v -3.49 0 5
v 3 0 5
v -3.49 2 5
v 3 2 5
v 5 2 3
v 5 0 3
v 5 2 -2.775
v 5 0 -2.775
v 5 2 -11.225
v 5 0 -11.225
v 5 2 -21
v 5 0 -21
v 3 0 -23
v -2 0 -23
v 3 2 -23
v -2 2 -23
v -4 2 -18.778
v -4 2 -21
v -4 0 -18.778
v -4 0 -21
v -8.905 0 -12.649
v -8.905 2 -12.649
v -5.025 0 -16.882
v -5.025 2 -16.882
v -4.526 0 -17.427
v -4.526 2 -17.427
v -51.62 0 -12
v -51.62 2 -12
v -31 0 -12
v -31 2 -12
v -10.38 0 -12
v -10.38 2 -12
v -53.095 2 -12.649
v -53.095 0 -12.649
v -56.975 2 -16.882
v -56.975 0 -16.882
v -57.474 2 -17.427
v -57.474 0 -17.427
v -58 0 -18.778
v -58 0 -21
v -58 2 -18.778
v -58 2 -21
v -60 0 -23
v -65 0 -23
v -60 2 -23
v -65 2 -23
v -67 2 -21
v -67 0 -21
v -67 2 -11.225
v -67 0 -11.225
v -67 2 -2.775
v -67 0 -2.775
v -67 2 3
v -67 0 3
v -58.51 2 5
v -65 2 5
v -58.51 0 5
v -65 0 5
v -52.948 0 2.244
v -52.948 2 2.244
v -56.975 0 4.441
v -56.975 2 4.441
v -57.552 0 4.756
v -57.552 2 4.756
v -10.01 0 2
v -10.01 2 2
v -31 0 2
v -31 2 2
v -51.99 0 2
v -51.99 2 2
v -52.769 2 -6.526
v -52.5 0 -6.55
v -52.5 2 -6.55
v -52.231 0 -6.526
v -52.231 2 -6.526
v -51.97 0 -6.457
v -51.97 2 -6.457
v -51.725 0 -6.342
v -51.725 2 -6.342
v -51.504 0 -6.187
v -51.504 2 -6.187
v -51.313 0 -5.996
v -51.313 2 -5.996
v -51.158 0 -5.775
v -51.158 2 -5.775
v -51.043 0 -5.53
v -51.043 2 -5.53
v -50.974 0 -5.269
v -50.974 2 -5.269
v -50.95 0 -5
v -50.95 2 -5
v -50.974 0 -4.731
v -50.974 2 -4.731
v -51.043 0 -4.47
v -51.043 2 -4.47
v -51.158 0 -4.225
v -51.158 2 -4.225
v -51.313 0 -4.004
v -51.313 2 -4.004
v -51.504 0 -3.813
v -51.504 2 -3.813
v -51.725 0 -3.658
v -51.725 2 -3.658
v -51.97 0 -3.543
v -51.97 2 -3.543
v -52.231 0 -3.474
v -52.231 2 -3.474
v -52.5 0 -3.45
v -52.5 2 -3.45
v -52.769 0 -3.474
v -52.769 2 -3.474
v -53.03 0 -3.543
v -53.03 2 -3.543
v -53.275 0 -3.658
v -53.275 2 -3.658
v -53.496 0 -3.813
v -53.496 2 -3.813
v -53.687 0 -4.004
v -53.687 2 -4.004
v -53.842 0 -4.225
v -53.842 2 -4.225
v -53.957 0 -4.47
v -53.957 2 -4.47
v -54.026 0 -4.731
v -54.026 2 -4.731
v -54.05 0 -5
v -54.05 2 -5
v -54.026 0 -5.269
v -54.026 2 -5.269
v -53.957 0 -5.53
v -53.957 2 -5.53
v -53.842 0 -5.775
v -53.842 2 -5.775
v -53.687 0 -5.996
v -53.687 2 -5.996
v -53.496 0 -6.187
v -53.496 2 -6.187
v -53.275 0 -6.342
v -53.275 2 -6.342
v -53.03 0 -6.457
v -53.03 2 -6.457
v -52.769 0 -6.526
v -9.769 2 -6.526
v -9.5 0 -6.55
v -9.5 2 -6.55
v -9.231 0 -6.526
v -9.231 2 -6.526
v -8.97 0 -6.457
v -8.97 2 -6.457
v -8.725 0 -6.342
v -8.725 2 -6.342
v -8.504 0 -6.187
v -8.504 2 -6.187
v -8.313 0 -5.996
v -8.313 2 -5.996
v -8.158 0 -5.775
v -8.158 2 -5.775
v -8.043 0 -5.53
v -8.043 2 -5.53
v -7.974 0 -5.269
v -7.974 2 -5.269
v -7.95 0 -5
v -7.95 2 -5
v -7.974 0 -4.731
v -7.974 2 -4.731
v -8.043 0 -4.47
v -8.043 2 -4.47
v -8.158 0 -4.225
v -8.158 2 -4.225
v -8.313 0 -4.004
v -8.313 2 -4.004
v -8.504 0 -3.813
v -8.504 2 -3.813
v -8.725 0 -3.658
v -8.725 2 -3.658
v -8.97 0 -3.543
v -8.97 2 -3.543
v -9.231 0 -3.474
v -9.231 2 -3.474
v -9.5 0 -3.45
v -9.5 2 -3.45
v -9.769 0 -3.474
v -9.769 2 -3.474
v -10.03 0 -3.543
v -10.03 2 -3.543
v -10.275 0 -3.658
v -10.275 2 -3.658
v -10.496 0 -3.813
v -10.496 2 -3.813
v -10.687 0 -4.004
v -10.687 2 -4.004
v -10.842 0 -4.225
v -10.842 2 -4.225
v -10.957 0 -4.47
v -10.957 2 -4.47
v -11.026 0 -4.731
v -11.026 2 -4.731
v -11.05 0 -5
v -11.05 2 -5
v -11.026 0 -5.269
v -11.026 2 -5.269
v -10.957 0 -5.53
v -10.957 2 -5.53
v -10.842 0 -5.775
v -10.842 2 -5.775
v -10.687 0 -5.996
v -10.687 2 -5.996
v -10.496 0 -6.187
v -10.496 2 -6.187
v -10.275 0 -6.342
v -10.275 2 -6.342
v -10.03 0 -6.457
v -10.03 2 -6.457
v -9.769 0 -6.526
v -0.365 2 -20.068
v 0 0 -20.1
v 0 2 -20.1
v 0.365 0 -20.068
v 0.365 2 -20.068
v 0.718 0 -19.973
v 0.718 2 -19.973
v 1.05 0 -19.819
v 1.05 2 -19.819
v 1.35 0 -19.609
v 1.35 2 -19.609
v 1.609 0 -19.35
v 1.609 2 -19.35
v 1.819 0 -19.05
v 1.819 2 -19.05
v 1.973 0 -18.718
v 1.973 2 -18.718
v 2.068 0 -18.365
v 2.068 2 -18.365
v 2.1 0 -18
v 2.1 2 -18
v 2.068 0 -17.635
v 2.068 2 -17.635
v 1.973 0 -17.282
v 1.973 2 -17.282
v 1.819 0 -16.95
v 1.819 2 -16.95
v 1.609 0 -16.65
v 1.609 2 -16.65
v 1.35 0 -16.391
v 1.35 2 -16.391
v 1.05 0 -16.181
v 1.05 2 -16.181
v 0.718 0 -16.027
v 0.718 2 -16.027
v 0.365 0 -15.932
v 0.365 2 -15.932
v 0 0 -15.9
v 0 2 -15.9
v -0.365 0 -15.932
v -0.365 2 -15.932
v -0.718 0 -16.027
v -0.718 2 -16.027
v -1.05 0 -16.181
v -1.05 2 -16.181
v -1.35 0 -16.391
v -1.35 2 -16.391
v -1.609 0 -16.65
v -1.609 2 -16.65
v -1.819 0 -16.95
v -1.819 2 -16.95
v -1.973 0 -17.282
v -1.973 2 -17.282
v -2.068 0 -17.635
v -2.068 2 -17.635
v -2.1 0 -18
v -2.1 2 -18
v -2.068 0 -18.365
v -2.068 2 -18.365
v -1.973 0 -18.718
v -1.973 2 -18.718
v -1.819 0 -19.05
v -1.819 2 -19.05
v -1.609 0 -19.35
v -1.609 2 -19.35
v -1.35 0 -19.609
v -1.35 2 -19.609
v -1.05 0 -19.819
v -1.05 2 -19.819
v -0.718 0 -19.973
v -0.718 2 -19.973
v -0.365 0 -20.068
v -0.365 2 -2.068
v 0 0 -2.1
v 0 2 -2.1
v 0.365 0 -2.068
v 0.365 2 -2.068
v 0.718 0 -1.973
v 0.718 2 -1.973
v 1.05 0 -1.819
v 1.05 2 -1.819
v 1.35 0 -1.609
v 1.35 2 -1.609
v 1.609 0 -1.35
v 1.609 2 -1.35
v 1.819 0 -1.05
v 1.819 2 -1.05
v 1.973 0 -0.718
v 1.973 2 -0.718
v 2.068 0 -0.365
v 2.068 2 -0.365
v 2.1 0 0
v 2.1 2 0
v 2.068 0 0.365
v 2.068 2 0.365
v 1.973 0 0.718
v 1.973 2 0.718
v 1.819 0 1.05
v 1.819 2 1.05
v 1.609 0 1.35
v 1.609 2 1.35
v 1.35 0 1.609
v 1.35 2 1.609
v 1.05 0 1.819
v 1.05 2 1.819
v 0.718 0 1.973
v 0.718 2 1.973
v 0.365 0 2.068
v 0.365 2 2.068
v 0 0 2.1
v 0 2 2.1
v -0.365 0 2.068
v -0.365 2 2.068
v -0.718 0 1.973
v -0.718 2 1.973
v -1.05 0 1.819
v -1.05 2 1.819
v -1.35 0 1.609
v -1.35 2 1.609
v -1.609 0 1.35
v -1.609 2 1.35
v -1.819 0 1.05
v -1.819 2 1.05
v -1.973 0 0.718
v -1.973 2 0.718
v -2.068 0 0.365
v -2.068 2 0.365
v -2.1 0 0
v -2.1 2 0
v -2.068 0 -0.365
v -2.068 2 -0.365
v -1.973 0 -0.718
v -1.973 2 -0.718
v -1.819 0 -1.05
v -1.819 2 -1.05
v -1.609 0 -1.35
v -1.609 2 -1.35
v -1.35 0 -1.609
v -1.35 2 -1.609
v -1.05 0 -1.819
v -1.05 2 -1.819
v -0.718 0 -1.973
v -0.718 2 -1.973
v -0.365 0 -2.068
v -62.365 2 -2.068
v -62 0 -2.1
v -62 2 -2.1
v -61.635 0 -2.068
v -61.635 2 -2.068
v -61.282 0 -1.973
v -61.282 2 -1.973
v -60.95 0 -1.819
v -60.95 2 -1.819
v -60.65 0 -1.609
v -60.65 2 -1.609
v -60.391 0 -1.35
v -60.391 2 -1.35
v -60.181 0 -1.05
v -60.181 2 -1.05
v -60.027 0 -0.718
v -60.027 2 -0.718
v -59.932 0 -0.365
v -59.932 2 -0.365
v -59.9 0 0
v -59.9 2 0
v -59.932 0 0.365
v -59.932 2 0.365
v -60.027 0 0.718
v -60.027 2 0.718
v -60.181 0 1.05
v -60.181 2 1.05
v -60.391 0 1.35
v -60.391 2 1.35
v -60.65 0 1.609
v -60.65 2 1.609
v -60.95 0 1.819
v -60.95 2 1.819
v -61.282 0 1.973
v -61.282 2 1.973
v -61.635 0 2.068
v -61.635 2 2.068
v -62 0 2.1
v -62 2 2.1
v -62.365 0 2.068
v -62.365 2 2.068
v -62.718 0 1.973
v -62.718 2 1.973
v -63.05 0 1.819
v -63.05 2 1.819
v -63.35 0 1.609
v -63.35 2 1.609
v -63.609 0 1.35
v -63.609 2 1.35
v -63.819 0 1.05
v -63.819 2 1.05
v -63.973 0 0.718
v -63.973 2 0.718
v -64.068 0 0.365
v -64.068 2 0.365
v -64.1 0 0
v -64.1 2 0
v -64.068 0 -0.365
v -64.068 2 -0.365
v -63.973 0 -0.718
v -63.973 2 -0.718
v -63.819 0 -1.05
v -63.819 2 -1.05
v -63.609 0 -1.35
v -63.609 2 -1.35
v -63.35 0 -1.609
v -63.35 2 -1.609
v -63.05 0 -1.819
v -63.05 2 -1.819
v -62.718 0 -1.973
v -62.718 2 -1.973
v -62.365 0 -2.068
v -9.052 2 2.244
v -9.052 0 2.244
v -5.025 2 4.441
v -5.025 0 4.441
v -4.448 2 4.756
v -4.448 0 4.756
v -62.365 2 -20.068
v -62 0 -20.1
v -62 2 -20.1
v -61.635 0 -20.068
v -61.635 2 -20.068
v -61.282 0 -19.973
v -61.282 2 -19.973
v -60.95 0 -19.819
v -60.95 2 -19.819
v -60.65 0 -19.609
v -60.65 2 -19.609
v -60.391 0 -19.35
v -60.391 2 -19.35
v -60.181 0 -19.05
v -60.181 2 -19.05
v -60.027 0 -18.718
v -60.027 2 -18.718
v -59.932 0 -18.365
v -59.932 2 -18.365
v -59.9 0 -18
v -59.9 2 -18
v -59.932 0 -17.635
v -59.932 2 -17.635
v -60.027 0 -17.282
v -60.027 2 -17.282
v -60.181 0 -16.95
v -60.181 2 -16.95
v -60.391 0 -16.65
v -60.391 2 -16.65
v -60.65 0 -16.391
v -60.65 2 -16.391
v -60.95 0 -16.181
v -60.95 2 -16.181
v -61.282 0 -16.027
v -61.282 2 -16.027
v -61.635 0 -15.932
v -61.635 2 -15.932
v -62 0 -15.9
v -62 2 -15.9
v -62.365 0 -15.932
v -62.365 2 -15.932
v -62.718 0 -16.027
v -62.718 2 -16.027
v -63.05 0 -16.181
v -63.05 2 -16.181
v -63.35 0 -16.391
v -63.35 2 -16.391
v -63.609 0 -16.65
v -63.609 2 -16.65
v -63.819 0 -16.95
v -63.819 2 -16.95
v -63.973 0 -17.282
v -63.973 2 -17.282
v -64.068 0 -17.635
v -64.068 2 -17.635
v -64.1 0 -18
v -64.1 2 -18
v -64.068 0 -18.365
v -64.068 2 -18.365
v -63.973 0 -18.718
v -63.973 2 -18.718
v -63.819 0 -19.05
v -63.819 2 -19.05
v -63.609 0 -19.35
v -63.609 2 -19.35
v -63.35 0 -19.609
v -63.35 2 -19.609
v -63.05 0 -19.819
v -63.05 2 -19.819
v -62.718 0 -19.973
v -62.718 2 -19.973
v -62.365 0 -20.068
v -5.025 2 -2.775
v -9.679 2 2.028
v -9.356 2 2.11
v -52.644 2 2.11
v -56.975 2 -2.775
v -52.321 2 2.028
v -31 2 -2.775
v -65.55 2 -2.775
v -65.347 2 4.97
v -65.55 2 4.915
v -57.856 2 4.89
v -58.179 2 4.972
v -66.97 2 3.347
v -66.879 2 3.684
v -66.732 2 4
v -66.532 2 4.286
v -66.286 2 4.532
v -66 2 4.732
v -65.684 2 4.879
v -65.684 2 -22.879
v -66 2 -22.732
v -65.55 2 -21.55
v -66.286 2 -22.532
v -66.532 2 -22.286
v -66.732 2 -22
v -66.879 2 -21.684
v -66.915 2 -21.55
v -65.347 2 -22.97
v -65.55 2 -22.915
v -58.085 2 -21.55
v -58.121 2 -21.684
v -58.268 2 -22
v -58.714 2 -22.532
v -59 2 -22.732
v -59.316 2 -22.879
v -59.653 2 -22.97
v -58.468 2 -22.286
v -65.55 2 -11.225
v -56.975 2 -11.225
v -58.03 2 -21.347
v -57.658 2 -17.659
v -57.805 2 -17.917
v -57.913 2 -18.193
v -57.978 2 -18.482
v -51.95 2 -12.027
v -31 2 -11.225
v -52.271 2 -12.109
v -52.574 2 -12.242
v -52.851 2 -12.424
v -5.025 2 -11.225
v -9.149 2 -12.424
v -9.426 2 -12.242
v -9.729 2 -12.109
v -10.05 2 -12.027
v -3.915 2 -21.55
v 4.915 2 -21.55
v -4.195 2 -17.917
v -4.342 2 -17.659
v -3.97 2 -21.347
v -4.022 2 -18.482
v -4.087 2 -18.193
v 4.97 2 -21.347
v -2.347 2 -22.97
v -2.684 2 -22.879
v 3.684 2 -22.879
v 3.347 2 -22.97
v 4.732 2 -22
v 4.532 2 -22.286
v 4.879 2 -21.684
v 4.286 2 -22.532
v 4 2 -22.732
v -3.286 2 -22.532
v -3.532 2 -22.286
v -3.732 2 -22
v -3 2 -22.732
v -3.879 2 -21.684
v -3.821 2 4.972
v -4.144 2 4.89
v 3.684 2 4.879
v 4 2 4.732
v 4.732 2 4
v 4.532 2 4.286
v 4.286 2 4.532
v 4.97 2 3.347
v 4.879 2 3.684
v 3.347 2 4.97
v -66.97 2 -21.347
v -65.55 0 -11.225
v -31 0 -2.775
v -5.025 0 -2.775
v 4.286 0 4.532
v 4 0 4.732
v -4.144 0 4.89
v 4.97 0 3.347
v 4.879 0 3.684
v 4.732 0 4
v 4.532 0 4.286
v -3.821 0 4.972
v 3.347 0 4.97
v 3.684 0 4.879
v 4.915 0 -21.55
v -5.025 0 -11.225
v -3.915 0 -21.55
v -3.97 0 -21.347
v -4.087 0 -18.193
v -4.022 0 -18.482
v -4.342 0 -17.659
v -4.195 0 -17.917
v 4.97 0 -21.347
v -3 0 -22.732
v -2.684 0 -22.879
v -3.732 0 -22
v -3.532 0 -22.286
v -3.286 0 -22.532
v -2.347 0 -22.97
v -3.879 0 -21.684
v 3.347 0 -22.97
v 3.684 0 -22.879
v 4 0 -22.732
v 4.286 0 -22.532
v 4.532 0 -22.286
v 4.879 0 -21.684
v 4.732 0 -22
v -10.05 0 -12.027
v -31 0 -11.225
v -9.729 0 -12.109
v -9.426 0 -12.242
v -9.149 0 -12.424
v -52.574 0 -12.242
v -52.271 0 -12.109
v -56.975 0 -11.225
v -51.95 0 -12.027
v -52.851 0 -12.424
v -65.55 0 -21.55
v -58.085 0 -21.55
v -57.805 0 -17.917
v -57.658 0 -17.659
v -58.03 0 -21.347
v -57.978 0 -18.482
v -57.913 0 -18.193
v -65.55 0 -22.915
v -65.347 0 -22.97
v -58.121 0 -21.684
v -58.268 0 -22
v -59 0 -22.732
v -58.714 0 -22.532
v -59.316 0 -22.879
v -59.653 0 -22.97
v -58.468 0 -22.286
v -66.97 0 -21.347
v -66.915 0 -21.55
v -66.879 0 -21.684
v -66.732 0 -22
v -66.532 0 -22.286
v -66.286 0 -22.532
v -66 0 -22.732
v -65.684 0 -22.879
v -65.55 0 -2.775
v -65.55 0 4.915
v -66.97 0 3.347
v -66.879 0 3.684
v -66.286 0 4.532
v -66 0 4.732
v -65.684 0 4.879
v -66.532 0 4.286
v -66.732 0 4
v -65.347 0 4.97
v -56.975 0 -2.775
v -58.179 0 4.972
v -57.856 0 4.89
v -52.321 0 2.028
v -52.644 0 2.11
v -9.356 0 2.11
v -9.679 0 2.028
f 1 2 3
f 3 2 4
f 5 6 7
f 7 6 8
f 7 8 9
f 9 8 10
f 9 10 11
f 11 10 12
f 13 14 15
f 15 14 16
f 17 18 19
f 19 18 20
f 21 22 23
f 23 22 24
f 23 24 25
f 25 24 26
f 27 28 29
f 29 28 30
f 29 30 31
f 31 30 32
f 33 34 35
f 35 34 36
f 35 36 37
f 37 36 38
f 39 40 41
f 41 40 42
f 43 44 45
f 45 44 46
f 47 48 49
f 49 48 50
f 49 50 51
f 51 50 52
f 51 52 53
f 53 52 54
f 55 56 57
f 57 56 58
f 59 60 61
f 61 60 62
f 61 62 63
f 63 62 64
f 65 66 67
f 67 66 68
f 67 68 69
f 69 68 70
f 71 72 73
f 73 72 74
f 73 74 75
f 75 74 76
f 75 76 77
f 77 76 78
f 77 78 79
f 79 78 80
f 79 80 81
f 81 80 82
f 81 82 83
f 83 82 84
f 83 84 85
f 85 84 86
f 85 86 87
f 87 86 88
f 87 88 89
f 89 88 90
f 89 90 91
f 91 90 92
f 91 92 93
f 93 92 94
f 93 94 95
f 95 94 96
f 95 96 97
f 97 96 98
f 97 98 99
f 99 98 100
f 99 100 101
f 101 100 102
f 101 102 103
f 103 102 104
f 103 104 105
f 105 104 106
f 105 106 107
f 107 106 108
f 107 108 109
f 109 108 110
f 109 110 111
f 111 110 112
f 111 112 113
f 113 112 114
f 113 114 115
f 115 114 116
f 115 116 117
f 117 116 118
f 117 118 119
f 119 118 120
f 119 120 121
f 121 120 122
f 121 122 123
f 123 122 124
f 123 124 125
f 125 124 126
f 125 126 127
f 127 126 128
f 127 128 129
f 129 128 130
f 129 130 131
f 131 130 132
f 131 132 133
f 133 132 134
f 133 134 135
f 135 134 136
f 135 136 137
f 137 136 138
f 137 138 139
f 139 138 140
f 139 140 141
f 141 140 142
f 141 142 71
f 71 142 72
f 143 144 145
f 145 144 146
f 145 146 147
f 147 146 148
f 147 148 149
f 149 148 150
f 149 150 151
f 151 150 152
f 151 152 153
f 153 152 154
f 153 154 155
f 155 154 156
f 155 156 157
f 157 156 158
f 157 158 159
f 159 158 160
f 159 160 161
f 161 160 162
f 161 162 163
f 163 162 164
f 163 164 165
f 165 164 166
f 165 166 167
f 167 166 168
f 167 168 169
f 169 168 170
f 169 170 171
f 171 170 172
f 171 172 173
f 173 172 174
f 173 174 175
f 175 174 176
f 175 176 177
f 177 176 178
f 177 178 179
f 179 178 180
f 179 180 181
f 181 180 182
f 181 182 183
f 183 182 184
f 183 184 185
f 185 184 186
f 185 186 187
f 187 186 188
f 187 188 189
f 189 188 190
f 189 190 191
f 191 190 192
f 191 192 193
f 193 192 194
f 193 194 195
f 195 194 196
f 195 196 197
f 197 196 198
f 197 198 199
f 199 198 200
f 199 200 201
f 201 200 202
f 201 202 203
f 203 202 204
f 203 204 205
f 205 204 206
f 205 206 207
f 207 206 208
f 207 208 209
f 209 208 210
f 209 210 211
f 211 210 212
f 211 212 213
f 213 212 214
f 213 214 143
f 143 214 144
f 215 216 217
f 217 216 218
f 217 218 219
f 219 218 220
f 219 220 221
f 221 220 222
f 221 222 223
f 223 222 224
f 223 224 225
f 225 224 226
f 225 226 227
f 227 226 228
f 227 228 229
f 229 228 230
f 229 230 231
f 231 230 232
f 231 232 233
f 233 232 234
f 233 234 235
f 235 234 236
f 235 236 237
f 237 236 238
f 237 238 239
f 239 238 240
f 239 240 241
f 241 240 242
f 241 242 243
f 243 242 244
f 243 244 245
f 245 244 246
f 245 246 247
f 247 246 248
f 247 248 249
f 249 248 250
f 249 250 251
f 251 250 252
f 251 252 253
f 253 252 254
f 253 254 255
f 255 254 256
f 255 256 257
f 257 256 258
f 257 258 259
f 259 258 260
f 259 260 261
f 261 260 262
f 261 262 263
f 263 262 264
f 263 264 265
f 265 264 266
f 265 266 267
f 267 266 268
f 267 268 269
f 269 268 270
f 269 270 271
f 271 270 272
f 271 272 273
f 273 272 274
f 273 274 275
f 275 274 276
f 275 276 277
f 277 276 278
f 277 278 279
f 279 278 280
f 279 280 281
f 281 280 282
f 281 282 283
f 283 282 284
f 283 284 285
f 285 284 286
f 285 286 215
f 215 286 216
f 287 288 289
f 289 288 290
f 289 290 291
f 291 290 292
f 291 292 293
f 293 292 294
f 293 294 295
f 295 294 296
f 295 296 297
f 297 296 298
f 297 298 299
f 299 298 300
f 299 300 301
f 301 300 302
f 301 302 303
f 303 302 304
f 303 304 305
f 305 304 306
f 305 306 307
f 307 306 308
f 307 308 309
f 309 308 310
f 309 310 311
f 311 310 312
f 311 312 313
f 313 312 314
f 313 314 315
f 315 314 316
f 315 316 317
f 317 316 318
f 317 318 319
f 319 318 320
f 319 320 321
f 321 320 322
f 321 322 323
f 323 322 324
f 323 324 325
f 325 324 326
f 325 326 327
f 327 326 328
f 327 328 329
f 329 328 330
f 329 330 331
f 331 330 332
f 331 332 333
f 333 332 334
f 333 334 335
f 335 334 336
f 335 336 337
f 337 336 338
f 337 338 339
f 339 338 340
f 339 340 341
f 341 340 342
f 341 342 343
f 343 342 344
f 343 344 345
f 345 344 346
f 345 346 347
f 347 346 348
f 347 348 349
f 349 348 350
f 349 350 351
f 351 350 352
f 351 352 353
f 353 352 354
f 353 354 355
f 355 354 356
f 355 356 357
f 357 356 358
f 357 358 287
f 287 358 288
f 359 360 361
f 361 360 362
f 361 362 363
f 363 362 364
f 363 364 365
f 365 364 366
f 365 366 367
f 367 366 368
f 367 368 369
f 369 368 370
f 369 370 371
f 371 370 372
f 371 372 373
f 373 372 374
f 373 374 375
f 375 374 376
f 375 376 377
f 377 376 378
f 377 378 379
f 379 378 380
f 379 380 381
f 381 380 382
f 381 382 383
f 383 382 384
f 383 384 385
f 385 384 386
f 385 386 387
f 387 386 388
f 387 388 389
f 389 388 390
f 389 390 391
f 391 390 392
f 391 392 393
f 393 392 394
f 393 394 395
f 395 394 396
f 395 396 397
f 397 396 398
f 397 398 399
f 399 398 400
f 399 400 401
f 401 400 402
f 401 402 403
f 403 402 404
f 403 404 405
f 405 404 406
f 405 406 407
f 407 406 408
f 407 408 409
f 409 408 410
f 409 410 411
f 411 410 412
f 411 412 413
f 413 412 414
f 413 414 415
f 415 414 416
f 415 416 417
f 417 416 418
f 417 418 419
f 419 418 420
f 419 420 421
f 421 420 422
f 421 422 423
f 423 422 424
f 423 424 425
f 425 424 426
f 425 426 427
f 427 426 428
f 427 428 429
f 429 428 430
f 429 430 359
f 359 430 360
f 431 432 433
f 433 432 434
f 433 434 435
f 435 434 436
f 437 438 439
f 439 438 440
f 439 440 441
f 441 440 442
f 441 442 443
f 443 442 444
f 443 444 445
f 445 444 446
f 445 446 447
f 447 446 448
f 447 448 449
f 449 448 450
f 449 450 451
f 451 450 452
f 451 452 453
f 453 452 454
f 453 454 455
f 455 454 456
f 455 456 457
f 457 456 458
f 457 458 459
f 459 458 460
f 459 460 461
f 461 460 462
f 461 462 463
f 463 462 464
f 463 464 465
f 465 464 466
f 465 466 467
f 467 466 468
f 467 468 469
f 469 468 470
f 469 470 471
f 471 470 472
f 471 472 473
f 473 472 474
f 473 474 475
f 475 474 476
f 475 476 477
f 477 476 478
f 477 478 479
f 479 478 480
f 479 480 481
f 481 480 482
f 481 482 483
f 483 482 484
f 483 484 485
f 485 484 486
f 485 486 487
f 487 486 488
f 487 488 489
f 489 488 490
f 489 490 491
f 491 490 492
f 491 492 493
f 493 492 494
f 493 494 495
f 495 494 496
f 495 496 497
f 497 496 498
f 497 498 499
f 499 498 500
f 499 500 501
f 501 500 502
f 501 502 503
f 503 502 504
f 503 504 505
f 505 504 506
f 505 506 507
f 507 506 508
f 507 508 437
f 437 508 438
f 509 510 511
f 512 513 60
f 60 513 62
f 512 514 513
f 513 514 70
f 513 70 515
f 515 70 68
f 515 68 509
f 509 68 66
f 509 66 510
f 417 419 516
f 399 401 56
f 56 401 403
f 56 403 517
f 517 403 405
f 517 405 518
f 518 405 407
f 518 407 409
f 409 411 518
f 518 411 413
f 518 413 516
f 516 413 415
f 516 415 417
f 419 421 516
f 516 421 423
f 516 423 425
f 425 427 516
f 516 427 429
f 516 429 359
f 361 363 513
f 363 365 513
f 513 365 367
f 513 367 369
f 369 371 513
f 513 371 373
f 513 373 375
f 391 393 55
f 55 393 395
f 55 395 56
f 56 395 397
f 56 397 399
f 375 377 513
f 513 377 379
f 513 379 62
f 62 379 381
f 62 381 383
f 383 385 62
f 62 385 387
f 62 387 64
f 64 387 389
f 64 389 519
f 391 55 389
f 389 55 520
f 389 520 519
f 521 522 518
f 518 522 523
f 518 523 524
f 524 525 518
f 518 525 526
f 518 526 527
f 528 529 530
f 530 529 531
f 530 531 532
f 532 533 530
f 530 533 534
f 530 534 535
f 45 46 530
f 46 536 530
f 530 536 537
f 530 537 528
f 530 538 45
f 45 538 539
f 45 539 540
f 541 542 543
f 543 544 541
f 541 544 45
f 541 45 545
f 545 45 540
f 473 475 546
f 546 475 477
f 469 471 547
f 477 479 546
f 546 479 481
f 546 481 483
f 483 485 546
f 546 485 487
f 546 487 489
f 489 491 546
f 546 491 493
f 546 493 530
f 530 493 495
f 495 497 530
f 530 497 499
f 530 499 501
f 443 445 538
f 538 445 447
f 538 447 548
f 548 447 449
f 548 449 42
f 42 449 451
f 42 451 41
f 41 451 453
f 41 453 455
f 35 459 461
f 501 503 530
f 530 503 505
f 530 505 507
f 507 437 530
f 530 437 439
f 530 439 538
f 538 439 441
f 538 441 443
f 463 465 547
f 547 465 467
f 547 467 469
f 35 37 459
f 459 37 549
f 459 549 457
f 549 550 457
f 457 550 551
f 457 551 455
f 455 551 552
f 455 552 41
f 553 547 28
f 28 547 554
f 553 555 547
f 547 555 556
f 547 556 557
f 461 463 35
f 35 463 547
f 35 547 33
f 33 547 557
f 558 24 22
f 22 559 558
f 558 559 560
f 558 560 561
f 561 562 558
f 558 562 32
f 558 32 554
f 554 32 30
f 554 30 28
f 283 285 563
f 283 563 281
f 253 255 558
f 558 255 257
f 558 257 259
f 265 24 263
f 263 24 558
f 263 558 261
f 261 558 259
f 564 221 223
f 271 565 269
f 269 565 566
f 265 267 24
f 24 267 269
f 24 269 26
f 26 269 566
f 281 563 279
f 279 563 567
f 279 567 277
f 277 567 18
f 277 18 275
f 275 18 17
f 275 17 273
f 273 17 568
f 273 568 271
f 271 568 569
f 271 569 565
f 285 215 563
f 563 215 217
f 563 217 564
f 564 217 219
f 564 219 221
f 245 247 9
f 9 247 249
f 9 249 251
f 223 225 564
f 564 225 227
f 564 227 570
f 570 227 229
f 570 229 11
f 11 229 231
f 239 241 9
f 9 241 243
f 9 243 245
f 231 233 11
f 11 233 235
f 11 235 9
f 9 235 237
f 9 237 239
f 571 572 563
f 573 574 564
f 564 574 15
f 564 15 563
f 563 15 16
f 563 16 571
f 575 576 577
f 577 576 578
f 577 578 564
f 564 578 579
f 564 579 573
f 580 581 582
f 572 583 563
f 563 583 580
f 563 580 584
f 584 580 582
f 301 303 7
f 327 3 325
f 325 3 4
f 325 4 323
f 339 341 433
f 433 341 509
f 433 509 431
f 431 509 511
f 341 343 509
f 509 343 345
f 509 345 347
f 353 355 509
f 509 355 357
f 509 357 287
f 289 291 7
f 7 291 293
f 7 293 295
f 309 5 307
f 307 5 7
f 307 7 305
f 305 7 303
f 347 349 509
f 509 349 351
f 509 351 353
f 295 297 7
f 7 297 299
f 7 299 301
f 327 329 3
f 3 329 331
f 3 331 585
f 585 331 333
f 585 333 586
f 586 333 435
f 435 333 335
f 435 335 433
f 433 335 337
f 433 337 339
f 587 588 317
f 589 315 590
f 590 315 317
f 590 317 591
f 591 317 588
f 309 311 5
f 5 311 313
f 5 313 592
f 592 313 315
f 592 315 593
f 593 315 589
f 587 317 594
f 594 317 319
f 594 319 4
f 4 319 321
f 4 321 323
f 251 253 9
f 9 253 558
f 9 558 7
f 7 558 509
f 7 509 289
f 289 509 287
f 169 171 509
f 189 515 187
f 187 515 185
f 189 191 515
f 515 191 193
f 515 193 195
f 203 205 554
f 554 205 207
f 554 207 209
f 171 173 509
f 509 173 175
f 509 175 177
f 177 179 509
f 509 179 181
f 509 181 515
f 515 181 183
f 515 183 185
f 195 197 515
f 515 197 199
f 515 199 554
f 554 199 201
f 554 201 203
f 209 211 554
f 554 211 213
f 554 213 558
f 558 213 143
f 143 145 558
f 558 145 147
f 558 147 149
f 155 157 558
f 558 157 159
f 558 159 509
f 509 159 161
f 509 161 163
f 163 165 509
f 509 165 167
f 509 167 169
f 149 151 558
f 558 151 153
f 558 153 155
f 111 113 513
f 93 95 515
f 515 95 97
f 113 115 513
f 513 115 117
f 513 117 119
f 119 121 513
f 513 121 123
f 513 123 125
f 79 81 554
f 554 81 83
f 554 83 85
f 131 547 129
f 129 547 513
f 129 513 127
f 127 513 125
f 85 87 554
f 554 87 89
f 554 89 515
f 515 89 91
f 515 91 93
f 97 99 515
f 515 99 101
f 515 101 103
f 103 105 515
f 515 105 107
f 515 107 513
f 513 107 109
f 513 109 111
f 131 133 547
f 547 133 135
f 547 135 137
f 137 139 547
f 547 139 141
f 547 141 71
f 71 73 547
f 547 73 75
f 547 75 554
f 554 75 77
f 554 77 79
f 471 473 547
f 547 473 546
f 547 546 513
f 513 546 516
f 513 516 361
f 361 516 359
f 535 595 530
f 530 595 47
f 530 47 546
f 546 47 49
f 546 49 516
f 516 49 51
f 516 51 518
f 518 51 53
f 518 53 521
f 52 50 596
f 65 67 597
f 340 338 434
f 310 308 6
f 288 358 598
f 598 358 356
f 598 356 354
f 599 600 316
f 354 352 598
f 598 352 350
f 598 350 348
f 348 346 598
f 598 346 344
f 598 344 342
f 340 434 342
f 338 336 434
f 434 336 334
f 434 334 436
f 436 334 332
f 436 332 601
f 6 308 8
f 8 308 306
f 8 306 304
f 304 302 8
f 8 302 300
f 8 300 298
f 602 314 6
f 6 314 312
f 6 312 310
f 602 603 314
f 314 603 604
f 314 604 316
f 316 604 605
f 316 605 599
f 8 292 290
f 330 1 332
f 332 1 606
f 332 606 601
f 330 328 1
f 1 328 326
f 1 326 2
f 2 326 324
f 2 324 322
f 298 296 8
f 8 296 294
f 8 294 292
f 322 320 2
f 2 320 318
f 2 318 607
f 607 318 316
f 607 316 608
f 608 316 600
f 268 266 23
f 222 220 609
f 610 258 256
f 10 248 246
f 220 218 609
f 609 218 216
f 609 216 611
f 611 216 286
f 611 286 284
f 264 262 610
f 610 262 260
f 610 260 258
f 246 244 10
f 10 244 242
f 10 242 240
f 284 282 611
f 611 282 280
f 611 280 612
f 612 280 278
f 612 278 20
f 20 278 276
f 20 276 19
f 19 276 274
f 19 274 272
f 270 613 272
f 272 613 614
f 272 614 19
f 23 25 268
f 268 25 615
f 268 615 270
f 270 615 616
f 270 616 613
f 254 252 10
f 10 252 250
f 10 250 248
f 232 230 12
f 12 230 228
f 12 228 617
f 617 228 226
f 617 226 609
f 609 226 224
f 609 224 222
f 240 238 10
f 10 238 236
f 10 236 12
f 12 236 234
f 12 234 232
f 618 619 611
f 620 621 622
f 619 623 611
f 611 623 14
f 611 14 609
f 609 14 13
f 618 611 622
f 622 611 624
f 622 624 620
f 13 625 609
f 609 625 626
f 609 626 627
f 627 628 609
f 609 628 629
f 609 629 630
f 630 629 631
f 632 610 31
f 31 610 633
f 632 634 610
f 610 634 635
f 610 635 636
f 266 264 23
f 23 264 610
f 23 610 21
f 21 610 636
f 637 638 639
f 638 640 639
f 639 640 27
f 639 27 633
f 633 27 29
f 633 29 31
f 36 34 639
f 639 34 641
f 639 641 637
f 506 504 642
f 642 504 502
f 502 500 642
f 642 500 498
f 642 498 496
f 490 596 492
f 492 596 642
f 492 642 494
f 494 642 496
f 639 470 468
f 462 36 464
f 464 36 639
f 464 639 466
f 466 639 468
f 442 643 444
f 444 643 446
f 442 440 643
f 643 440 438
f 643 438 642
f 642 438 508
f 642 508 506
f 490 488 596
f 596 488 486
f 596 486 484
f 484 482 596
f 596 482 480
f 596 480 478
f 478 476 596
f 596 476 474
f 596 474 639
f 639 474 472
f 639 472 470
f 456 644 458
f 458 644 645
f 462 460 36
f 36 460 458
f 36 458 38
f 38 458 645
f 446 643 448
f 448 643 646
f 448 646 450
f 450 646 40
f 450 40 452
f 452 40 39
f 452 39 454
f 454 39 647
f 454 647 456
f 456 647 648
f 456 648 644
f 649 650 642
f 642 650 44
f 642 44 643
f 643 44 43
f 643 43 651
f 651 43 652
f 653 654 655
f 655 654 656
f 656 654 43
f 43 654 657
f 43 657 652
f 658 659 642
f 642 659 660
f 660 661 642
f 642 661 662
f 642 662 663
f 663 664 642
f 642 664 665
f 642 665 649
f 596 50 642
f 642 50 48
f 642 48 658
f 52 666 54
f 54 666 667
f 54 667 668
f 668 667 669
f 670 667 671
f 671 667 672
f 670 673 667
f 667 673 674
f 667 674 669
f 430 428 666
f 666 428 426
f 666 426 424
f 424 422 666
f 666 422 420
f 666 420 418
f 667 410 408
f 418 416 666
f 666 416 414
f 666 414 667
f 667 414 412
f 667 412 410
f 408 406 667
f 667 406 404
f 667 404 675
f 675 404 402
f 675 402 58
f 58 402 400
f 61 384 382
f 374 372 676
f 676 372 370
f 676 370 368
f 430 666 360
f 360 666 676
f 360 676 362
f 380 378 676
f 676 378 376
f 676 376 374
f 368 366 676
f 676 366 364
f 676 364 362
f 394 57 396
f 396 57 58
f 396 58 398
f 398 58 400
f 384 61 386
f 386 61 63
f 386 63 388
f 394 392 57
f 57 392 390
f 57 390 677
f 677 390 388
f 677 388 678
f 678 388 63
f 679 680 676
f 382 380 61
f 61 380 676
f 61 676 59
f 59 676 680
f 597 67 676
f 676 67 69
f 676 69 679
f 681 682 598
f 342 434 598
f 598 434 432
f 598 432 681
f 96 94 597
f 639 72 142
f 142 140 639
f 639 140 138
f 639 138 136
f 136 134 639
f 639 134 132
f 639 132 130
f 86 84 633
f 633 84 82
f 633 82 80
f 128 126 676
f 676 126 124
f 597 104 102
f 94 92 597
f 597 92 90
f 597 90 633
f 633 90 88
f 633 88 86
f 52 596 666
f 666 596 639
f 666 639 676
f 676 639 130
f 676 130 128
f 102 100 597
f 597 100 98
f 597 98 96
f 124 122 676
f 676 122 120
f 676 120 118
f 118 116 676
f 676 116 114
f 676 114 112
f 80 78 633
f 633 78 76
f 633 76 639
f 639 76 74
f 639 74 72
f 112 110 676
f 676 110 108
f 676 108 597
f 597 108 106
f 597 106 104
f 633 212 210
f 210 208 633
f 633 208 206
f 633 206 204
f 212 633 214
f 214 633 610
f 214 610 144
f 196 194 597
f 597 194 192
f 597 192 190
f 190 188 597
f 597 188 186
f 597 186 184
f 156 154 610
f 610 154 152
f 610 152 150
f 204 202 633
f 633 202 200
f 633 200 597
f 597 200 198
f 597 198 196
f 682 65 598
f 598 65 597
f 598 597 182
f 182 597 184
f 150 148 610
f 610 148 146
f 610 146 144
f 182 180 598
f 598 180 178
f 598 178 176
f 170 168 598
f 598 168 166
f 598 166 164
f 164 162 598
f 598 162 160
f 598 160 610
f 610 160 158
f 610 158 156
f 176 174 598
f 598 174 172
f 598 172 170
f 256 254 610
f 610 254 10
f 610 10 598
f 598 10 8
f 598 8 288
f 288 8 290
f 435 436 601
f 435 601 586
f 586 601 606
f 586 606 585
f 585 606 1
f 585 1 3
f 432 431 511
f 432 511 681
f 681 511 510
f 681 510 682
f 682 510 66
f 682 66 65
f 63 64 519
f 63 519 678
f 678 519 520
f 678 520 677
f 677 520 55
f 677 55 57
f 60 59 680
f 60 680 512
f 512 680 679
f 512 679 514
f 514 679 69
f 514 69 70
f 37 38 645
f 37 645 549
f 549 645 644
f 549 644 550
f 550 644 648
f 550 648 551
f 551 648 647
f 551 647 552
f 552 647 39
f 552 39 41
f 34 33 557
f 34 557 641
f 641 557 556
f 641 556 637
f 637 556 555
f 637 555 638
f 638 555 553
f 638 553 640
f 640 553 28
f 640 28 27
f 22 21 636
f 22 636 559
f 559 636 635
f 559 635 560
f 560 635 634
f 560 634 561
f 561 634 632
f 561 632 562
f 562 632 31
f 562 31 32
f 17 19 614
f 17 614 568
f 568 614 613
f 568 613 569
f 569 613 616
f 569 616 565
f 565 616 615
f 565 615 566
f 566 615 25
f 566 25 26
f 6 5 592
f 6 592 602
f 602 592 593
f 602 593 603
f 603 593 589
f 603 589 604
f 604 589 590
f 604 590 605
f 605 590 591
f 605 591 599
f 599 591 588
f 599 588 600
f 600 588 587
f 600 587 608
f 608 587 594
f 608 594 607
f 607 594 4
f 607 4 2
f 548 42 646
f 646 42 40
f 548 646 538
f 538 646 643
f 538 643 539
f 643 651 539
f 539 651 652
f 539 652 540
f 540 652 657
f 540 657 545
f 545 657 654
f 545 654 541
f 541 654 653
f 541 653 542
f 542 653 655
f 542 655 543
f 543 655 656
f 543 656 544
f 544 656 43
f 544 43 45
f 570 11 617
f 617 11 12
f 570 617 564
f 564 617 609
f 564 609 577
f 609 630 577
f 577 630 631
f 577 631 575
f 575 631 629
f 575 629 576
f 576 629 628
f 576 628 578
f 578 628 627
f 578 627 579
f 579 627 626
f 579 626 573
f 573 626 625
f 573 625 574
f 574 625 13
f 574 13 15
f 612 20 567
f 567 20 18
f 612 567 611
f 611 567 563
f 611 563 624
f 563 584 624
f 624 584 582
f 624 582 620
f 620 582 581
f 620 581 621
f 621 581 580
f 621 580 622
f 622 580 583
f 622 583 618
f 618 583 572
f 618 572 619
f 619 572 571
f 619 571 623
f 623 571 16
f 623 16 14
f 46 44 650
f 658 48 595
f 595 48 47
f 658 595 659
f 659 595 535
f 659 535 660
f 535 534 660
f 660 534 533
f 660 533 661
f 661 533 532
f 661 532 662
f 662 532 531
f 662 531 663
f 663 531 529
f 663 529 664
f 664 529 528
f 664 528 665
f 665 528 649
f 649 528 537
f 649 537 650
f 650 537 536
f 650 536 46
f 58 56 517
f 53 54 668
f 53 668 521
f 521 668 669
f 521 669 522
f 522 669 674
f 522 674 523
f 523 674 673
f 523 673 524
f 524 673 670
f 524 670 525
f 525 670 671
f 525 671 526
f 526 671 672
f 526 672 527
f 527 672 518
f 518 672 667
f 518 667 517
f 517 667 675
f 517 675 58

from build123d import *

# Parameters (mm, degrees)
SKETCH1_R           = 2.1
SKETCH1_R_2         = 1.55
BOSS_EXTRUDE1_DEPTH = 2
FILLET1_R           = 2


with BuildPart() as part:
    # Sketch1 → Boss-Extrude1 (new body)
    with BuildSketch(Plane(origin=(0, 0, 0), x_dir=(1, 0, 0), z_dir=(0, 1, 0))):
        Polygon((-67, -5), (-58, -5), (-52.5, -2), (-9.5, -2), (-4, -5), (5, -5), (5, 23), (-4, 23), (-4, 18), (-9.5, 12), (-52.5, 12), (-58, 18), (-58, 23), (-67, 23), align=None)
        Circle(SKETCH1_R, mode=Mode.SUBTRACT)
        with Locations((0, 18)):
            Circle(SKETCH1_R, mode=Mode.SUBTRACT)
        with Locations((-62, 18)):
            Circle(SKETCH1_R, mode=Mode.SUBTRACT)
        with Locations((-62, 0)):
            Circle(SKETCH1_R, mode=Mode.SUBTRACT)
        with Locations((-9.5, 5)):
            Circle(SKETCH1_R_2, mode=Mode.SUBTRACT)
        with Locations((-52.5, 5)):
            Circle(SKETCH1_R_2, mode=Mode.SUBTRACT)
    extrude(amount=BOSS_EXTRUDE1_DEPTH)

    # Fillet1
    fillet1_edges = [part.edges().sort_by_distance(p)[0] for p in [
        (-4, 1, 5),
        (-9.5, 1, 2),
        (-52.5, 1, 2),
        (-58, 1, 5),
        (-67, 1, 5),
        (-67, 1, -23),
        (-58, 1, -23),
        (-58, 1, -18),
        (-52.5, 1, -12),
        (-9.5, 1, -12),
        (-4, 1, -18),
        (-4, 1, -23),
        (5, 1, -23),
        (5, 1, 5),
    ]]
    fillet(fillet1_edges, radius=FILLET1_R)


solid = part.part
